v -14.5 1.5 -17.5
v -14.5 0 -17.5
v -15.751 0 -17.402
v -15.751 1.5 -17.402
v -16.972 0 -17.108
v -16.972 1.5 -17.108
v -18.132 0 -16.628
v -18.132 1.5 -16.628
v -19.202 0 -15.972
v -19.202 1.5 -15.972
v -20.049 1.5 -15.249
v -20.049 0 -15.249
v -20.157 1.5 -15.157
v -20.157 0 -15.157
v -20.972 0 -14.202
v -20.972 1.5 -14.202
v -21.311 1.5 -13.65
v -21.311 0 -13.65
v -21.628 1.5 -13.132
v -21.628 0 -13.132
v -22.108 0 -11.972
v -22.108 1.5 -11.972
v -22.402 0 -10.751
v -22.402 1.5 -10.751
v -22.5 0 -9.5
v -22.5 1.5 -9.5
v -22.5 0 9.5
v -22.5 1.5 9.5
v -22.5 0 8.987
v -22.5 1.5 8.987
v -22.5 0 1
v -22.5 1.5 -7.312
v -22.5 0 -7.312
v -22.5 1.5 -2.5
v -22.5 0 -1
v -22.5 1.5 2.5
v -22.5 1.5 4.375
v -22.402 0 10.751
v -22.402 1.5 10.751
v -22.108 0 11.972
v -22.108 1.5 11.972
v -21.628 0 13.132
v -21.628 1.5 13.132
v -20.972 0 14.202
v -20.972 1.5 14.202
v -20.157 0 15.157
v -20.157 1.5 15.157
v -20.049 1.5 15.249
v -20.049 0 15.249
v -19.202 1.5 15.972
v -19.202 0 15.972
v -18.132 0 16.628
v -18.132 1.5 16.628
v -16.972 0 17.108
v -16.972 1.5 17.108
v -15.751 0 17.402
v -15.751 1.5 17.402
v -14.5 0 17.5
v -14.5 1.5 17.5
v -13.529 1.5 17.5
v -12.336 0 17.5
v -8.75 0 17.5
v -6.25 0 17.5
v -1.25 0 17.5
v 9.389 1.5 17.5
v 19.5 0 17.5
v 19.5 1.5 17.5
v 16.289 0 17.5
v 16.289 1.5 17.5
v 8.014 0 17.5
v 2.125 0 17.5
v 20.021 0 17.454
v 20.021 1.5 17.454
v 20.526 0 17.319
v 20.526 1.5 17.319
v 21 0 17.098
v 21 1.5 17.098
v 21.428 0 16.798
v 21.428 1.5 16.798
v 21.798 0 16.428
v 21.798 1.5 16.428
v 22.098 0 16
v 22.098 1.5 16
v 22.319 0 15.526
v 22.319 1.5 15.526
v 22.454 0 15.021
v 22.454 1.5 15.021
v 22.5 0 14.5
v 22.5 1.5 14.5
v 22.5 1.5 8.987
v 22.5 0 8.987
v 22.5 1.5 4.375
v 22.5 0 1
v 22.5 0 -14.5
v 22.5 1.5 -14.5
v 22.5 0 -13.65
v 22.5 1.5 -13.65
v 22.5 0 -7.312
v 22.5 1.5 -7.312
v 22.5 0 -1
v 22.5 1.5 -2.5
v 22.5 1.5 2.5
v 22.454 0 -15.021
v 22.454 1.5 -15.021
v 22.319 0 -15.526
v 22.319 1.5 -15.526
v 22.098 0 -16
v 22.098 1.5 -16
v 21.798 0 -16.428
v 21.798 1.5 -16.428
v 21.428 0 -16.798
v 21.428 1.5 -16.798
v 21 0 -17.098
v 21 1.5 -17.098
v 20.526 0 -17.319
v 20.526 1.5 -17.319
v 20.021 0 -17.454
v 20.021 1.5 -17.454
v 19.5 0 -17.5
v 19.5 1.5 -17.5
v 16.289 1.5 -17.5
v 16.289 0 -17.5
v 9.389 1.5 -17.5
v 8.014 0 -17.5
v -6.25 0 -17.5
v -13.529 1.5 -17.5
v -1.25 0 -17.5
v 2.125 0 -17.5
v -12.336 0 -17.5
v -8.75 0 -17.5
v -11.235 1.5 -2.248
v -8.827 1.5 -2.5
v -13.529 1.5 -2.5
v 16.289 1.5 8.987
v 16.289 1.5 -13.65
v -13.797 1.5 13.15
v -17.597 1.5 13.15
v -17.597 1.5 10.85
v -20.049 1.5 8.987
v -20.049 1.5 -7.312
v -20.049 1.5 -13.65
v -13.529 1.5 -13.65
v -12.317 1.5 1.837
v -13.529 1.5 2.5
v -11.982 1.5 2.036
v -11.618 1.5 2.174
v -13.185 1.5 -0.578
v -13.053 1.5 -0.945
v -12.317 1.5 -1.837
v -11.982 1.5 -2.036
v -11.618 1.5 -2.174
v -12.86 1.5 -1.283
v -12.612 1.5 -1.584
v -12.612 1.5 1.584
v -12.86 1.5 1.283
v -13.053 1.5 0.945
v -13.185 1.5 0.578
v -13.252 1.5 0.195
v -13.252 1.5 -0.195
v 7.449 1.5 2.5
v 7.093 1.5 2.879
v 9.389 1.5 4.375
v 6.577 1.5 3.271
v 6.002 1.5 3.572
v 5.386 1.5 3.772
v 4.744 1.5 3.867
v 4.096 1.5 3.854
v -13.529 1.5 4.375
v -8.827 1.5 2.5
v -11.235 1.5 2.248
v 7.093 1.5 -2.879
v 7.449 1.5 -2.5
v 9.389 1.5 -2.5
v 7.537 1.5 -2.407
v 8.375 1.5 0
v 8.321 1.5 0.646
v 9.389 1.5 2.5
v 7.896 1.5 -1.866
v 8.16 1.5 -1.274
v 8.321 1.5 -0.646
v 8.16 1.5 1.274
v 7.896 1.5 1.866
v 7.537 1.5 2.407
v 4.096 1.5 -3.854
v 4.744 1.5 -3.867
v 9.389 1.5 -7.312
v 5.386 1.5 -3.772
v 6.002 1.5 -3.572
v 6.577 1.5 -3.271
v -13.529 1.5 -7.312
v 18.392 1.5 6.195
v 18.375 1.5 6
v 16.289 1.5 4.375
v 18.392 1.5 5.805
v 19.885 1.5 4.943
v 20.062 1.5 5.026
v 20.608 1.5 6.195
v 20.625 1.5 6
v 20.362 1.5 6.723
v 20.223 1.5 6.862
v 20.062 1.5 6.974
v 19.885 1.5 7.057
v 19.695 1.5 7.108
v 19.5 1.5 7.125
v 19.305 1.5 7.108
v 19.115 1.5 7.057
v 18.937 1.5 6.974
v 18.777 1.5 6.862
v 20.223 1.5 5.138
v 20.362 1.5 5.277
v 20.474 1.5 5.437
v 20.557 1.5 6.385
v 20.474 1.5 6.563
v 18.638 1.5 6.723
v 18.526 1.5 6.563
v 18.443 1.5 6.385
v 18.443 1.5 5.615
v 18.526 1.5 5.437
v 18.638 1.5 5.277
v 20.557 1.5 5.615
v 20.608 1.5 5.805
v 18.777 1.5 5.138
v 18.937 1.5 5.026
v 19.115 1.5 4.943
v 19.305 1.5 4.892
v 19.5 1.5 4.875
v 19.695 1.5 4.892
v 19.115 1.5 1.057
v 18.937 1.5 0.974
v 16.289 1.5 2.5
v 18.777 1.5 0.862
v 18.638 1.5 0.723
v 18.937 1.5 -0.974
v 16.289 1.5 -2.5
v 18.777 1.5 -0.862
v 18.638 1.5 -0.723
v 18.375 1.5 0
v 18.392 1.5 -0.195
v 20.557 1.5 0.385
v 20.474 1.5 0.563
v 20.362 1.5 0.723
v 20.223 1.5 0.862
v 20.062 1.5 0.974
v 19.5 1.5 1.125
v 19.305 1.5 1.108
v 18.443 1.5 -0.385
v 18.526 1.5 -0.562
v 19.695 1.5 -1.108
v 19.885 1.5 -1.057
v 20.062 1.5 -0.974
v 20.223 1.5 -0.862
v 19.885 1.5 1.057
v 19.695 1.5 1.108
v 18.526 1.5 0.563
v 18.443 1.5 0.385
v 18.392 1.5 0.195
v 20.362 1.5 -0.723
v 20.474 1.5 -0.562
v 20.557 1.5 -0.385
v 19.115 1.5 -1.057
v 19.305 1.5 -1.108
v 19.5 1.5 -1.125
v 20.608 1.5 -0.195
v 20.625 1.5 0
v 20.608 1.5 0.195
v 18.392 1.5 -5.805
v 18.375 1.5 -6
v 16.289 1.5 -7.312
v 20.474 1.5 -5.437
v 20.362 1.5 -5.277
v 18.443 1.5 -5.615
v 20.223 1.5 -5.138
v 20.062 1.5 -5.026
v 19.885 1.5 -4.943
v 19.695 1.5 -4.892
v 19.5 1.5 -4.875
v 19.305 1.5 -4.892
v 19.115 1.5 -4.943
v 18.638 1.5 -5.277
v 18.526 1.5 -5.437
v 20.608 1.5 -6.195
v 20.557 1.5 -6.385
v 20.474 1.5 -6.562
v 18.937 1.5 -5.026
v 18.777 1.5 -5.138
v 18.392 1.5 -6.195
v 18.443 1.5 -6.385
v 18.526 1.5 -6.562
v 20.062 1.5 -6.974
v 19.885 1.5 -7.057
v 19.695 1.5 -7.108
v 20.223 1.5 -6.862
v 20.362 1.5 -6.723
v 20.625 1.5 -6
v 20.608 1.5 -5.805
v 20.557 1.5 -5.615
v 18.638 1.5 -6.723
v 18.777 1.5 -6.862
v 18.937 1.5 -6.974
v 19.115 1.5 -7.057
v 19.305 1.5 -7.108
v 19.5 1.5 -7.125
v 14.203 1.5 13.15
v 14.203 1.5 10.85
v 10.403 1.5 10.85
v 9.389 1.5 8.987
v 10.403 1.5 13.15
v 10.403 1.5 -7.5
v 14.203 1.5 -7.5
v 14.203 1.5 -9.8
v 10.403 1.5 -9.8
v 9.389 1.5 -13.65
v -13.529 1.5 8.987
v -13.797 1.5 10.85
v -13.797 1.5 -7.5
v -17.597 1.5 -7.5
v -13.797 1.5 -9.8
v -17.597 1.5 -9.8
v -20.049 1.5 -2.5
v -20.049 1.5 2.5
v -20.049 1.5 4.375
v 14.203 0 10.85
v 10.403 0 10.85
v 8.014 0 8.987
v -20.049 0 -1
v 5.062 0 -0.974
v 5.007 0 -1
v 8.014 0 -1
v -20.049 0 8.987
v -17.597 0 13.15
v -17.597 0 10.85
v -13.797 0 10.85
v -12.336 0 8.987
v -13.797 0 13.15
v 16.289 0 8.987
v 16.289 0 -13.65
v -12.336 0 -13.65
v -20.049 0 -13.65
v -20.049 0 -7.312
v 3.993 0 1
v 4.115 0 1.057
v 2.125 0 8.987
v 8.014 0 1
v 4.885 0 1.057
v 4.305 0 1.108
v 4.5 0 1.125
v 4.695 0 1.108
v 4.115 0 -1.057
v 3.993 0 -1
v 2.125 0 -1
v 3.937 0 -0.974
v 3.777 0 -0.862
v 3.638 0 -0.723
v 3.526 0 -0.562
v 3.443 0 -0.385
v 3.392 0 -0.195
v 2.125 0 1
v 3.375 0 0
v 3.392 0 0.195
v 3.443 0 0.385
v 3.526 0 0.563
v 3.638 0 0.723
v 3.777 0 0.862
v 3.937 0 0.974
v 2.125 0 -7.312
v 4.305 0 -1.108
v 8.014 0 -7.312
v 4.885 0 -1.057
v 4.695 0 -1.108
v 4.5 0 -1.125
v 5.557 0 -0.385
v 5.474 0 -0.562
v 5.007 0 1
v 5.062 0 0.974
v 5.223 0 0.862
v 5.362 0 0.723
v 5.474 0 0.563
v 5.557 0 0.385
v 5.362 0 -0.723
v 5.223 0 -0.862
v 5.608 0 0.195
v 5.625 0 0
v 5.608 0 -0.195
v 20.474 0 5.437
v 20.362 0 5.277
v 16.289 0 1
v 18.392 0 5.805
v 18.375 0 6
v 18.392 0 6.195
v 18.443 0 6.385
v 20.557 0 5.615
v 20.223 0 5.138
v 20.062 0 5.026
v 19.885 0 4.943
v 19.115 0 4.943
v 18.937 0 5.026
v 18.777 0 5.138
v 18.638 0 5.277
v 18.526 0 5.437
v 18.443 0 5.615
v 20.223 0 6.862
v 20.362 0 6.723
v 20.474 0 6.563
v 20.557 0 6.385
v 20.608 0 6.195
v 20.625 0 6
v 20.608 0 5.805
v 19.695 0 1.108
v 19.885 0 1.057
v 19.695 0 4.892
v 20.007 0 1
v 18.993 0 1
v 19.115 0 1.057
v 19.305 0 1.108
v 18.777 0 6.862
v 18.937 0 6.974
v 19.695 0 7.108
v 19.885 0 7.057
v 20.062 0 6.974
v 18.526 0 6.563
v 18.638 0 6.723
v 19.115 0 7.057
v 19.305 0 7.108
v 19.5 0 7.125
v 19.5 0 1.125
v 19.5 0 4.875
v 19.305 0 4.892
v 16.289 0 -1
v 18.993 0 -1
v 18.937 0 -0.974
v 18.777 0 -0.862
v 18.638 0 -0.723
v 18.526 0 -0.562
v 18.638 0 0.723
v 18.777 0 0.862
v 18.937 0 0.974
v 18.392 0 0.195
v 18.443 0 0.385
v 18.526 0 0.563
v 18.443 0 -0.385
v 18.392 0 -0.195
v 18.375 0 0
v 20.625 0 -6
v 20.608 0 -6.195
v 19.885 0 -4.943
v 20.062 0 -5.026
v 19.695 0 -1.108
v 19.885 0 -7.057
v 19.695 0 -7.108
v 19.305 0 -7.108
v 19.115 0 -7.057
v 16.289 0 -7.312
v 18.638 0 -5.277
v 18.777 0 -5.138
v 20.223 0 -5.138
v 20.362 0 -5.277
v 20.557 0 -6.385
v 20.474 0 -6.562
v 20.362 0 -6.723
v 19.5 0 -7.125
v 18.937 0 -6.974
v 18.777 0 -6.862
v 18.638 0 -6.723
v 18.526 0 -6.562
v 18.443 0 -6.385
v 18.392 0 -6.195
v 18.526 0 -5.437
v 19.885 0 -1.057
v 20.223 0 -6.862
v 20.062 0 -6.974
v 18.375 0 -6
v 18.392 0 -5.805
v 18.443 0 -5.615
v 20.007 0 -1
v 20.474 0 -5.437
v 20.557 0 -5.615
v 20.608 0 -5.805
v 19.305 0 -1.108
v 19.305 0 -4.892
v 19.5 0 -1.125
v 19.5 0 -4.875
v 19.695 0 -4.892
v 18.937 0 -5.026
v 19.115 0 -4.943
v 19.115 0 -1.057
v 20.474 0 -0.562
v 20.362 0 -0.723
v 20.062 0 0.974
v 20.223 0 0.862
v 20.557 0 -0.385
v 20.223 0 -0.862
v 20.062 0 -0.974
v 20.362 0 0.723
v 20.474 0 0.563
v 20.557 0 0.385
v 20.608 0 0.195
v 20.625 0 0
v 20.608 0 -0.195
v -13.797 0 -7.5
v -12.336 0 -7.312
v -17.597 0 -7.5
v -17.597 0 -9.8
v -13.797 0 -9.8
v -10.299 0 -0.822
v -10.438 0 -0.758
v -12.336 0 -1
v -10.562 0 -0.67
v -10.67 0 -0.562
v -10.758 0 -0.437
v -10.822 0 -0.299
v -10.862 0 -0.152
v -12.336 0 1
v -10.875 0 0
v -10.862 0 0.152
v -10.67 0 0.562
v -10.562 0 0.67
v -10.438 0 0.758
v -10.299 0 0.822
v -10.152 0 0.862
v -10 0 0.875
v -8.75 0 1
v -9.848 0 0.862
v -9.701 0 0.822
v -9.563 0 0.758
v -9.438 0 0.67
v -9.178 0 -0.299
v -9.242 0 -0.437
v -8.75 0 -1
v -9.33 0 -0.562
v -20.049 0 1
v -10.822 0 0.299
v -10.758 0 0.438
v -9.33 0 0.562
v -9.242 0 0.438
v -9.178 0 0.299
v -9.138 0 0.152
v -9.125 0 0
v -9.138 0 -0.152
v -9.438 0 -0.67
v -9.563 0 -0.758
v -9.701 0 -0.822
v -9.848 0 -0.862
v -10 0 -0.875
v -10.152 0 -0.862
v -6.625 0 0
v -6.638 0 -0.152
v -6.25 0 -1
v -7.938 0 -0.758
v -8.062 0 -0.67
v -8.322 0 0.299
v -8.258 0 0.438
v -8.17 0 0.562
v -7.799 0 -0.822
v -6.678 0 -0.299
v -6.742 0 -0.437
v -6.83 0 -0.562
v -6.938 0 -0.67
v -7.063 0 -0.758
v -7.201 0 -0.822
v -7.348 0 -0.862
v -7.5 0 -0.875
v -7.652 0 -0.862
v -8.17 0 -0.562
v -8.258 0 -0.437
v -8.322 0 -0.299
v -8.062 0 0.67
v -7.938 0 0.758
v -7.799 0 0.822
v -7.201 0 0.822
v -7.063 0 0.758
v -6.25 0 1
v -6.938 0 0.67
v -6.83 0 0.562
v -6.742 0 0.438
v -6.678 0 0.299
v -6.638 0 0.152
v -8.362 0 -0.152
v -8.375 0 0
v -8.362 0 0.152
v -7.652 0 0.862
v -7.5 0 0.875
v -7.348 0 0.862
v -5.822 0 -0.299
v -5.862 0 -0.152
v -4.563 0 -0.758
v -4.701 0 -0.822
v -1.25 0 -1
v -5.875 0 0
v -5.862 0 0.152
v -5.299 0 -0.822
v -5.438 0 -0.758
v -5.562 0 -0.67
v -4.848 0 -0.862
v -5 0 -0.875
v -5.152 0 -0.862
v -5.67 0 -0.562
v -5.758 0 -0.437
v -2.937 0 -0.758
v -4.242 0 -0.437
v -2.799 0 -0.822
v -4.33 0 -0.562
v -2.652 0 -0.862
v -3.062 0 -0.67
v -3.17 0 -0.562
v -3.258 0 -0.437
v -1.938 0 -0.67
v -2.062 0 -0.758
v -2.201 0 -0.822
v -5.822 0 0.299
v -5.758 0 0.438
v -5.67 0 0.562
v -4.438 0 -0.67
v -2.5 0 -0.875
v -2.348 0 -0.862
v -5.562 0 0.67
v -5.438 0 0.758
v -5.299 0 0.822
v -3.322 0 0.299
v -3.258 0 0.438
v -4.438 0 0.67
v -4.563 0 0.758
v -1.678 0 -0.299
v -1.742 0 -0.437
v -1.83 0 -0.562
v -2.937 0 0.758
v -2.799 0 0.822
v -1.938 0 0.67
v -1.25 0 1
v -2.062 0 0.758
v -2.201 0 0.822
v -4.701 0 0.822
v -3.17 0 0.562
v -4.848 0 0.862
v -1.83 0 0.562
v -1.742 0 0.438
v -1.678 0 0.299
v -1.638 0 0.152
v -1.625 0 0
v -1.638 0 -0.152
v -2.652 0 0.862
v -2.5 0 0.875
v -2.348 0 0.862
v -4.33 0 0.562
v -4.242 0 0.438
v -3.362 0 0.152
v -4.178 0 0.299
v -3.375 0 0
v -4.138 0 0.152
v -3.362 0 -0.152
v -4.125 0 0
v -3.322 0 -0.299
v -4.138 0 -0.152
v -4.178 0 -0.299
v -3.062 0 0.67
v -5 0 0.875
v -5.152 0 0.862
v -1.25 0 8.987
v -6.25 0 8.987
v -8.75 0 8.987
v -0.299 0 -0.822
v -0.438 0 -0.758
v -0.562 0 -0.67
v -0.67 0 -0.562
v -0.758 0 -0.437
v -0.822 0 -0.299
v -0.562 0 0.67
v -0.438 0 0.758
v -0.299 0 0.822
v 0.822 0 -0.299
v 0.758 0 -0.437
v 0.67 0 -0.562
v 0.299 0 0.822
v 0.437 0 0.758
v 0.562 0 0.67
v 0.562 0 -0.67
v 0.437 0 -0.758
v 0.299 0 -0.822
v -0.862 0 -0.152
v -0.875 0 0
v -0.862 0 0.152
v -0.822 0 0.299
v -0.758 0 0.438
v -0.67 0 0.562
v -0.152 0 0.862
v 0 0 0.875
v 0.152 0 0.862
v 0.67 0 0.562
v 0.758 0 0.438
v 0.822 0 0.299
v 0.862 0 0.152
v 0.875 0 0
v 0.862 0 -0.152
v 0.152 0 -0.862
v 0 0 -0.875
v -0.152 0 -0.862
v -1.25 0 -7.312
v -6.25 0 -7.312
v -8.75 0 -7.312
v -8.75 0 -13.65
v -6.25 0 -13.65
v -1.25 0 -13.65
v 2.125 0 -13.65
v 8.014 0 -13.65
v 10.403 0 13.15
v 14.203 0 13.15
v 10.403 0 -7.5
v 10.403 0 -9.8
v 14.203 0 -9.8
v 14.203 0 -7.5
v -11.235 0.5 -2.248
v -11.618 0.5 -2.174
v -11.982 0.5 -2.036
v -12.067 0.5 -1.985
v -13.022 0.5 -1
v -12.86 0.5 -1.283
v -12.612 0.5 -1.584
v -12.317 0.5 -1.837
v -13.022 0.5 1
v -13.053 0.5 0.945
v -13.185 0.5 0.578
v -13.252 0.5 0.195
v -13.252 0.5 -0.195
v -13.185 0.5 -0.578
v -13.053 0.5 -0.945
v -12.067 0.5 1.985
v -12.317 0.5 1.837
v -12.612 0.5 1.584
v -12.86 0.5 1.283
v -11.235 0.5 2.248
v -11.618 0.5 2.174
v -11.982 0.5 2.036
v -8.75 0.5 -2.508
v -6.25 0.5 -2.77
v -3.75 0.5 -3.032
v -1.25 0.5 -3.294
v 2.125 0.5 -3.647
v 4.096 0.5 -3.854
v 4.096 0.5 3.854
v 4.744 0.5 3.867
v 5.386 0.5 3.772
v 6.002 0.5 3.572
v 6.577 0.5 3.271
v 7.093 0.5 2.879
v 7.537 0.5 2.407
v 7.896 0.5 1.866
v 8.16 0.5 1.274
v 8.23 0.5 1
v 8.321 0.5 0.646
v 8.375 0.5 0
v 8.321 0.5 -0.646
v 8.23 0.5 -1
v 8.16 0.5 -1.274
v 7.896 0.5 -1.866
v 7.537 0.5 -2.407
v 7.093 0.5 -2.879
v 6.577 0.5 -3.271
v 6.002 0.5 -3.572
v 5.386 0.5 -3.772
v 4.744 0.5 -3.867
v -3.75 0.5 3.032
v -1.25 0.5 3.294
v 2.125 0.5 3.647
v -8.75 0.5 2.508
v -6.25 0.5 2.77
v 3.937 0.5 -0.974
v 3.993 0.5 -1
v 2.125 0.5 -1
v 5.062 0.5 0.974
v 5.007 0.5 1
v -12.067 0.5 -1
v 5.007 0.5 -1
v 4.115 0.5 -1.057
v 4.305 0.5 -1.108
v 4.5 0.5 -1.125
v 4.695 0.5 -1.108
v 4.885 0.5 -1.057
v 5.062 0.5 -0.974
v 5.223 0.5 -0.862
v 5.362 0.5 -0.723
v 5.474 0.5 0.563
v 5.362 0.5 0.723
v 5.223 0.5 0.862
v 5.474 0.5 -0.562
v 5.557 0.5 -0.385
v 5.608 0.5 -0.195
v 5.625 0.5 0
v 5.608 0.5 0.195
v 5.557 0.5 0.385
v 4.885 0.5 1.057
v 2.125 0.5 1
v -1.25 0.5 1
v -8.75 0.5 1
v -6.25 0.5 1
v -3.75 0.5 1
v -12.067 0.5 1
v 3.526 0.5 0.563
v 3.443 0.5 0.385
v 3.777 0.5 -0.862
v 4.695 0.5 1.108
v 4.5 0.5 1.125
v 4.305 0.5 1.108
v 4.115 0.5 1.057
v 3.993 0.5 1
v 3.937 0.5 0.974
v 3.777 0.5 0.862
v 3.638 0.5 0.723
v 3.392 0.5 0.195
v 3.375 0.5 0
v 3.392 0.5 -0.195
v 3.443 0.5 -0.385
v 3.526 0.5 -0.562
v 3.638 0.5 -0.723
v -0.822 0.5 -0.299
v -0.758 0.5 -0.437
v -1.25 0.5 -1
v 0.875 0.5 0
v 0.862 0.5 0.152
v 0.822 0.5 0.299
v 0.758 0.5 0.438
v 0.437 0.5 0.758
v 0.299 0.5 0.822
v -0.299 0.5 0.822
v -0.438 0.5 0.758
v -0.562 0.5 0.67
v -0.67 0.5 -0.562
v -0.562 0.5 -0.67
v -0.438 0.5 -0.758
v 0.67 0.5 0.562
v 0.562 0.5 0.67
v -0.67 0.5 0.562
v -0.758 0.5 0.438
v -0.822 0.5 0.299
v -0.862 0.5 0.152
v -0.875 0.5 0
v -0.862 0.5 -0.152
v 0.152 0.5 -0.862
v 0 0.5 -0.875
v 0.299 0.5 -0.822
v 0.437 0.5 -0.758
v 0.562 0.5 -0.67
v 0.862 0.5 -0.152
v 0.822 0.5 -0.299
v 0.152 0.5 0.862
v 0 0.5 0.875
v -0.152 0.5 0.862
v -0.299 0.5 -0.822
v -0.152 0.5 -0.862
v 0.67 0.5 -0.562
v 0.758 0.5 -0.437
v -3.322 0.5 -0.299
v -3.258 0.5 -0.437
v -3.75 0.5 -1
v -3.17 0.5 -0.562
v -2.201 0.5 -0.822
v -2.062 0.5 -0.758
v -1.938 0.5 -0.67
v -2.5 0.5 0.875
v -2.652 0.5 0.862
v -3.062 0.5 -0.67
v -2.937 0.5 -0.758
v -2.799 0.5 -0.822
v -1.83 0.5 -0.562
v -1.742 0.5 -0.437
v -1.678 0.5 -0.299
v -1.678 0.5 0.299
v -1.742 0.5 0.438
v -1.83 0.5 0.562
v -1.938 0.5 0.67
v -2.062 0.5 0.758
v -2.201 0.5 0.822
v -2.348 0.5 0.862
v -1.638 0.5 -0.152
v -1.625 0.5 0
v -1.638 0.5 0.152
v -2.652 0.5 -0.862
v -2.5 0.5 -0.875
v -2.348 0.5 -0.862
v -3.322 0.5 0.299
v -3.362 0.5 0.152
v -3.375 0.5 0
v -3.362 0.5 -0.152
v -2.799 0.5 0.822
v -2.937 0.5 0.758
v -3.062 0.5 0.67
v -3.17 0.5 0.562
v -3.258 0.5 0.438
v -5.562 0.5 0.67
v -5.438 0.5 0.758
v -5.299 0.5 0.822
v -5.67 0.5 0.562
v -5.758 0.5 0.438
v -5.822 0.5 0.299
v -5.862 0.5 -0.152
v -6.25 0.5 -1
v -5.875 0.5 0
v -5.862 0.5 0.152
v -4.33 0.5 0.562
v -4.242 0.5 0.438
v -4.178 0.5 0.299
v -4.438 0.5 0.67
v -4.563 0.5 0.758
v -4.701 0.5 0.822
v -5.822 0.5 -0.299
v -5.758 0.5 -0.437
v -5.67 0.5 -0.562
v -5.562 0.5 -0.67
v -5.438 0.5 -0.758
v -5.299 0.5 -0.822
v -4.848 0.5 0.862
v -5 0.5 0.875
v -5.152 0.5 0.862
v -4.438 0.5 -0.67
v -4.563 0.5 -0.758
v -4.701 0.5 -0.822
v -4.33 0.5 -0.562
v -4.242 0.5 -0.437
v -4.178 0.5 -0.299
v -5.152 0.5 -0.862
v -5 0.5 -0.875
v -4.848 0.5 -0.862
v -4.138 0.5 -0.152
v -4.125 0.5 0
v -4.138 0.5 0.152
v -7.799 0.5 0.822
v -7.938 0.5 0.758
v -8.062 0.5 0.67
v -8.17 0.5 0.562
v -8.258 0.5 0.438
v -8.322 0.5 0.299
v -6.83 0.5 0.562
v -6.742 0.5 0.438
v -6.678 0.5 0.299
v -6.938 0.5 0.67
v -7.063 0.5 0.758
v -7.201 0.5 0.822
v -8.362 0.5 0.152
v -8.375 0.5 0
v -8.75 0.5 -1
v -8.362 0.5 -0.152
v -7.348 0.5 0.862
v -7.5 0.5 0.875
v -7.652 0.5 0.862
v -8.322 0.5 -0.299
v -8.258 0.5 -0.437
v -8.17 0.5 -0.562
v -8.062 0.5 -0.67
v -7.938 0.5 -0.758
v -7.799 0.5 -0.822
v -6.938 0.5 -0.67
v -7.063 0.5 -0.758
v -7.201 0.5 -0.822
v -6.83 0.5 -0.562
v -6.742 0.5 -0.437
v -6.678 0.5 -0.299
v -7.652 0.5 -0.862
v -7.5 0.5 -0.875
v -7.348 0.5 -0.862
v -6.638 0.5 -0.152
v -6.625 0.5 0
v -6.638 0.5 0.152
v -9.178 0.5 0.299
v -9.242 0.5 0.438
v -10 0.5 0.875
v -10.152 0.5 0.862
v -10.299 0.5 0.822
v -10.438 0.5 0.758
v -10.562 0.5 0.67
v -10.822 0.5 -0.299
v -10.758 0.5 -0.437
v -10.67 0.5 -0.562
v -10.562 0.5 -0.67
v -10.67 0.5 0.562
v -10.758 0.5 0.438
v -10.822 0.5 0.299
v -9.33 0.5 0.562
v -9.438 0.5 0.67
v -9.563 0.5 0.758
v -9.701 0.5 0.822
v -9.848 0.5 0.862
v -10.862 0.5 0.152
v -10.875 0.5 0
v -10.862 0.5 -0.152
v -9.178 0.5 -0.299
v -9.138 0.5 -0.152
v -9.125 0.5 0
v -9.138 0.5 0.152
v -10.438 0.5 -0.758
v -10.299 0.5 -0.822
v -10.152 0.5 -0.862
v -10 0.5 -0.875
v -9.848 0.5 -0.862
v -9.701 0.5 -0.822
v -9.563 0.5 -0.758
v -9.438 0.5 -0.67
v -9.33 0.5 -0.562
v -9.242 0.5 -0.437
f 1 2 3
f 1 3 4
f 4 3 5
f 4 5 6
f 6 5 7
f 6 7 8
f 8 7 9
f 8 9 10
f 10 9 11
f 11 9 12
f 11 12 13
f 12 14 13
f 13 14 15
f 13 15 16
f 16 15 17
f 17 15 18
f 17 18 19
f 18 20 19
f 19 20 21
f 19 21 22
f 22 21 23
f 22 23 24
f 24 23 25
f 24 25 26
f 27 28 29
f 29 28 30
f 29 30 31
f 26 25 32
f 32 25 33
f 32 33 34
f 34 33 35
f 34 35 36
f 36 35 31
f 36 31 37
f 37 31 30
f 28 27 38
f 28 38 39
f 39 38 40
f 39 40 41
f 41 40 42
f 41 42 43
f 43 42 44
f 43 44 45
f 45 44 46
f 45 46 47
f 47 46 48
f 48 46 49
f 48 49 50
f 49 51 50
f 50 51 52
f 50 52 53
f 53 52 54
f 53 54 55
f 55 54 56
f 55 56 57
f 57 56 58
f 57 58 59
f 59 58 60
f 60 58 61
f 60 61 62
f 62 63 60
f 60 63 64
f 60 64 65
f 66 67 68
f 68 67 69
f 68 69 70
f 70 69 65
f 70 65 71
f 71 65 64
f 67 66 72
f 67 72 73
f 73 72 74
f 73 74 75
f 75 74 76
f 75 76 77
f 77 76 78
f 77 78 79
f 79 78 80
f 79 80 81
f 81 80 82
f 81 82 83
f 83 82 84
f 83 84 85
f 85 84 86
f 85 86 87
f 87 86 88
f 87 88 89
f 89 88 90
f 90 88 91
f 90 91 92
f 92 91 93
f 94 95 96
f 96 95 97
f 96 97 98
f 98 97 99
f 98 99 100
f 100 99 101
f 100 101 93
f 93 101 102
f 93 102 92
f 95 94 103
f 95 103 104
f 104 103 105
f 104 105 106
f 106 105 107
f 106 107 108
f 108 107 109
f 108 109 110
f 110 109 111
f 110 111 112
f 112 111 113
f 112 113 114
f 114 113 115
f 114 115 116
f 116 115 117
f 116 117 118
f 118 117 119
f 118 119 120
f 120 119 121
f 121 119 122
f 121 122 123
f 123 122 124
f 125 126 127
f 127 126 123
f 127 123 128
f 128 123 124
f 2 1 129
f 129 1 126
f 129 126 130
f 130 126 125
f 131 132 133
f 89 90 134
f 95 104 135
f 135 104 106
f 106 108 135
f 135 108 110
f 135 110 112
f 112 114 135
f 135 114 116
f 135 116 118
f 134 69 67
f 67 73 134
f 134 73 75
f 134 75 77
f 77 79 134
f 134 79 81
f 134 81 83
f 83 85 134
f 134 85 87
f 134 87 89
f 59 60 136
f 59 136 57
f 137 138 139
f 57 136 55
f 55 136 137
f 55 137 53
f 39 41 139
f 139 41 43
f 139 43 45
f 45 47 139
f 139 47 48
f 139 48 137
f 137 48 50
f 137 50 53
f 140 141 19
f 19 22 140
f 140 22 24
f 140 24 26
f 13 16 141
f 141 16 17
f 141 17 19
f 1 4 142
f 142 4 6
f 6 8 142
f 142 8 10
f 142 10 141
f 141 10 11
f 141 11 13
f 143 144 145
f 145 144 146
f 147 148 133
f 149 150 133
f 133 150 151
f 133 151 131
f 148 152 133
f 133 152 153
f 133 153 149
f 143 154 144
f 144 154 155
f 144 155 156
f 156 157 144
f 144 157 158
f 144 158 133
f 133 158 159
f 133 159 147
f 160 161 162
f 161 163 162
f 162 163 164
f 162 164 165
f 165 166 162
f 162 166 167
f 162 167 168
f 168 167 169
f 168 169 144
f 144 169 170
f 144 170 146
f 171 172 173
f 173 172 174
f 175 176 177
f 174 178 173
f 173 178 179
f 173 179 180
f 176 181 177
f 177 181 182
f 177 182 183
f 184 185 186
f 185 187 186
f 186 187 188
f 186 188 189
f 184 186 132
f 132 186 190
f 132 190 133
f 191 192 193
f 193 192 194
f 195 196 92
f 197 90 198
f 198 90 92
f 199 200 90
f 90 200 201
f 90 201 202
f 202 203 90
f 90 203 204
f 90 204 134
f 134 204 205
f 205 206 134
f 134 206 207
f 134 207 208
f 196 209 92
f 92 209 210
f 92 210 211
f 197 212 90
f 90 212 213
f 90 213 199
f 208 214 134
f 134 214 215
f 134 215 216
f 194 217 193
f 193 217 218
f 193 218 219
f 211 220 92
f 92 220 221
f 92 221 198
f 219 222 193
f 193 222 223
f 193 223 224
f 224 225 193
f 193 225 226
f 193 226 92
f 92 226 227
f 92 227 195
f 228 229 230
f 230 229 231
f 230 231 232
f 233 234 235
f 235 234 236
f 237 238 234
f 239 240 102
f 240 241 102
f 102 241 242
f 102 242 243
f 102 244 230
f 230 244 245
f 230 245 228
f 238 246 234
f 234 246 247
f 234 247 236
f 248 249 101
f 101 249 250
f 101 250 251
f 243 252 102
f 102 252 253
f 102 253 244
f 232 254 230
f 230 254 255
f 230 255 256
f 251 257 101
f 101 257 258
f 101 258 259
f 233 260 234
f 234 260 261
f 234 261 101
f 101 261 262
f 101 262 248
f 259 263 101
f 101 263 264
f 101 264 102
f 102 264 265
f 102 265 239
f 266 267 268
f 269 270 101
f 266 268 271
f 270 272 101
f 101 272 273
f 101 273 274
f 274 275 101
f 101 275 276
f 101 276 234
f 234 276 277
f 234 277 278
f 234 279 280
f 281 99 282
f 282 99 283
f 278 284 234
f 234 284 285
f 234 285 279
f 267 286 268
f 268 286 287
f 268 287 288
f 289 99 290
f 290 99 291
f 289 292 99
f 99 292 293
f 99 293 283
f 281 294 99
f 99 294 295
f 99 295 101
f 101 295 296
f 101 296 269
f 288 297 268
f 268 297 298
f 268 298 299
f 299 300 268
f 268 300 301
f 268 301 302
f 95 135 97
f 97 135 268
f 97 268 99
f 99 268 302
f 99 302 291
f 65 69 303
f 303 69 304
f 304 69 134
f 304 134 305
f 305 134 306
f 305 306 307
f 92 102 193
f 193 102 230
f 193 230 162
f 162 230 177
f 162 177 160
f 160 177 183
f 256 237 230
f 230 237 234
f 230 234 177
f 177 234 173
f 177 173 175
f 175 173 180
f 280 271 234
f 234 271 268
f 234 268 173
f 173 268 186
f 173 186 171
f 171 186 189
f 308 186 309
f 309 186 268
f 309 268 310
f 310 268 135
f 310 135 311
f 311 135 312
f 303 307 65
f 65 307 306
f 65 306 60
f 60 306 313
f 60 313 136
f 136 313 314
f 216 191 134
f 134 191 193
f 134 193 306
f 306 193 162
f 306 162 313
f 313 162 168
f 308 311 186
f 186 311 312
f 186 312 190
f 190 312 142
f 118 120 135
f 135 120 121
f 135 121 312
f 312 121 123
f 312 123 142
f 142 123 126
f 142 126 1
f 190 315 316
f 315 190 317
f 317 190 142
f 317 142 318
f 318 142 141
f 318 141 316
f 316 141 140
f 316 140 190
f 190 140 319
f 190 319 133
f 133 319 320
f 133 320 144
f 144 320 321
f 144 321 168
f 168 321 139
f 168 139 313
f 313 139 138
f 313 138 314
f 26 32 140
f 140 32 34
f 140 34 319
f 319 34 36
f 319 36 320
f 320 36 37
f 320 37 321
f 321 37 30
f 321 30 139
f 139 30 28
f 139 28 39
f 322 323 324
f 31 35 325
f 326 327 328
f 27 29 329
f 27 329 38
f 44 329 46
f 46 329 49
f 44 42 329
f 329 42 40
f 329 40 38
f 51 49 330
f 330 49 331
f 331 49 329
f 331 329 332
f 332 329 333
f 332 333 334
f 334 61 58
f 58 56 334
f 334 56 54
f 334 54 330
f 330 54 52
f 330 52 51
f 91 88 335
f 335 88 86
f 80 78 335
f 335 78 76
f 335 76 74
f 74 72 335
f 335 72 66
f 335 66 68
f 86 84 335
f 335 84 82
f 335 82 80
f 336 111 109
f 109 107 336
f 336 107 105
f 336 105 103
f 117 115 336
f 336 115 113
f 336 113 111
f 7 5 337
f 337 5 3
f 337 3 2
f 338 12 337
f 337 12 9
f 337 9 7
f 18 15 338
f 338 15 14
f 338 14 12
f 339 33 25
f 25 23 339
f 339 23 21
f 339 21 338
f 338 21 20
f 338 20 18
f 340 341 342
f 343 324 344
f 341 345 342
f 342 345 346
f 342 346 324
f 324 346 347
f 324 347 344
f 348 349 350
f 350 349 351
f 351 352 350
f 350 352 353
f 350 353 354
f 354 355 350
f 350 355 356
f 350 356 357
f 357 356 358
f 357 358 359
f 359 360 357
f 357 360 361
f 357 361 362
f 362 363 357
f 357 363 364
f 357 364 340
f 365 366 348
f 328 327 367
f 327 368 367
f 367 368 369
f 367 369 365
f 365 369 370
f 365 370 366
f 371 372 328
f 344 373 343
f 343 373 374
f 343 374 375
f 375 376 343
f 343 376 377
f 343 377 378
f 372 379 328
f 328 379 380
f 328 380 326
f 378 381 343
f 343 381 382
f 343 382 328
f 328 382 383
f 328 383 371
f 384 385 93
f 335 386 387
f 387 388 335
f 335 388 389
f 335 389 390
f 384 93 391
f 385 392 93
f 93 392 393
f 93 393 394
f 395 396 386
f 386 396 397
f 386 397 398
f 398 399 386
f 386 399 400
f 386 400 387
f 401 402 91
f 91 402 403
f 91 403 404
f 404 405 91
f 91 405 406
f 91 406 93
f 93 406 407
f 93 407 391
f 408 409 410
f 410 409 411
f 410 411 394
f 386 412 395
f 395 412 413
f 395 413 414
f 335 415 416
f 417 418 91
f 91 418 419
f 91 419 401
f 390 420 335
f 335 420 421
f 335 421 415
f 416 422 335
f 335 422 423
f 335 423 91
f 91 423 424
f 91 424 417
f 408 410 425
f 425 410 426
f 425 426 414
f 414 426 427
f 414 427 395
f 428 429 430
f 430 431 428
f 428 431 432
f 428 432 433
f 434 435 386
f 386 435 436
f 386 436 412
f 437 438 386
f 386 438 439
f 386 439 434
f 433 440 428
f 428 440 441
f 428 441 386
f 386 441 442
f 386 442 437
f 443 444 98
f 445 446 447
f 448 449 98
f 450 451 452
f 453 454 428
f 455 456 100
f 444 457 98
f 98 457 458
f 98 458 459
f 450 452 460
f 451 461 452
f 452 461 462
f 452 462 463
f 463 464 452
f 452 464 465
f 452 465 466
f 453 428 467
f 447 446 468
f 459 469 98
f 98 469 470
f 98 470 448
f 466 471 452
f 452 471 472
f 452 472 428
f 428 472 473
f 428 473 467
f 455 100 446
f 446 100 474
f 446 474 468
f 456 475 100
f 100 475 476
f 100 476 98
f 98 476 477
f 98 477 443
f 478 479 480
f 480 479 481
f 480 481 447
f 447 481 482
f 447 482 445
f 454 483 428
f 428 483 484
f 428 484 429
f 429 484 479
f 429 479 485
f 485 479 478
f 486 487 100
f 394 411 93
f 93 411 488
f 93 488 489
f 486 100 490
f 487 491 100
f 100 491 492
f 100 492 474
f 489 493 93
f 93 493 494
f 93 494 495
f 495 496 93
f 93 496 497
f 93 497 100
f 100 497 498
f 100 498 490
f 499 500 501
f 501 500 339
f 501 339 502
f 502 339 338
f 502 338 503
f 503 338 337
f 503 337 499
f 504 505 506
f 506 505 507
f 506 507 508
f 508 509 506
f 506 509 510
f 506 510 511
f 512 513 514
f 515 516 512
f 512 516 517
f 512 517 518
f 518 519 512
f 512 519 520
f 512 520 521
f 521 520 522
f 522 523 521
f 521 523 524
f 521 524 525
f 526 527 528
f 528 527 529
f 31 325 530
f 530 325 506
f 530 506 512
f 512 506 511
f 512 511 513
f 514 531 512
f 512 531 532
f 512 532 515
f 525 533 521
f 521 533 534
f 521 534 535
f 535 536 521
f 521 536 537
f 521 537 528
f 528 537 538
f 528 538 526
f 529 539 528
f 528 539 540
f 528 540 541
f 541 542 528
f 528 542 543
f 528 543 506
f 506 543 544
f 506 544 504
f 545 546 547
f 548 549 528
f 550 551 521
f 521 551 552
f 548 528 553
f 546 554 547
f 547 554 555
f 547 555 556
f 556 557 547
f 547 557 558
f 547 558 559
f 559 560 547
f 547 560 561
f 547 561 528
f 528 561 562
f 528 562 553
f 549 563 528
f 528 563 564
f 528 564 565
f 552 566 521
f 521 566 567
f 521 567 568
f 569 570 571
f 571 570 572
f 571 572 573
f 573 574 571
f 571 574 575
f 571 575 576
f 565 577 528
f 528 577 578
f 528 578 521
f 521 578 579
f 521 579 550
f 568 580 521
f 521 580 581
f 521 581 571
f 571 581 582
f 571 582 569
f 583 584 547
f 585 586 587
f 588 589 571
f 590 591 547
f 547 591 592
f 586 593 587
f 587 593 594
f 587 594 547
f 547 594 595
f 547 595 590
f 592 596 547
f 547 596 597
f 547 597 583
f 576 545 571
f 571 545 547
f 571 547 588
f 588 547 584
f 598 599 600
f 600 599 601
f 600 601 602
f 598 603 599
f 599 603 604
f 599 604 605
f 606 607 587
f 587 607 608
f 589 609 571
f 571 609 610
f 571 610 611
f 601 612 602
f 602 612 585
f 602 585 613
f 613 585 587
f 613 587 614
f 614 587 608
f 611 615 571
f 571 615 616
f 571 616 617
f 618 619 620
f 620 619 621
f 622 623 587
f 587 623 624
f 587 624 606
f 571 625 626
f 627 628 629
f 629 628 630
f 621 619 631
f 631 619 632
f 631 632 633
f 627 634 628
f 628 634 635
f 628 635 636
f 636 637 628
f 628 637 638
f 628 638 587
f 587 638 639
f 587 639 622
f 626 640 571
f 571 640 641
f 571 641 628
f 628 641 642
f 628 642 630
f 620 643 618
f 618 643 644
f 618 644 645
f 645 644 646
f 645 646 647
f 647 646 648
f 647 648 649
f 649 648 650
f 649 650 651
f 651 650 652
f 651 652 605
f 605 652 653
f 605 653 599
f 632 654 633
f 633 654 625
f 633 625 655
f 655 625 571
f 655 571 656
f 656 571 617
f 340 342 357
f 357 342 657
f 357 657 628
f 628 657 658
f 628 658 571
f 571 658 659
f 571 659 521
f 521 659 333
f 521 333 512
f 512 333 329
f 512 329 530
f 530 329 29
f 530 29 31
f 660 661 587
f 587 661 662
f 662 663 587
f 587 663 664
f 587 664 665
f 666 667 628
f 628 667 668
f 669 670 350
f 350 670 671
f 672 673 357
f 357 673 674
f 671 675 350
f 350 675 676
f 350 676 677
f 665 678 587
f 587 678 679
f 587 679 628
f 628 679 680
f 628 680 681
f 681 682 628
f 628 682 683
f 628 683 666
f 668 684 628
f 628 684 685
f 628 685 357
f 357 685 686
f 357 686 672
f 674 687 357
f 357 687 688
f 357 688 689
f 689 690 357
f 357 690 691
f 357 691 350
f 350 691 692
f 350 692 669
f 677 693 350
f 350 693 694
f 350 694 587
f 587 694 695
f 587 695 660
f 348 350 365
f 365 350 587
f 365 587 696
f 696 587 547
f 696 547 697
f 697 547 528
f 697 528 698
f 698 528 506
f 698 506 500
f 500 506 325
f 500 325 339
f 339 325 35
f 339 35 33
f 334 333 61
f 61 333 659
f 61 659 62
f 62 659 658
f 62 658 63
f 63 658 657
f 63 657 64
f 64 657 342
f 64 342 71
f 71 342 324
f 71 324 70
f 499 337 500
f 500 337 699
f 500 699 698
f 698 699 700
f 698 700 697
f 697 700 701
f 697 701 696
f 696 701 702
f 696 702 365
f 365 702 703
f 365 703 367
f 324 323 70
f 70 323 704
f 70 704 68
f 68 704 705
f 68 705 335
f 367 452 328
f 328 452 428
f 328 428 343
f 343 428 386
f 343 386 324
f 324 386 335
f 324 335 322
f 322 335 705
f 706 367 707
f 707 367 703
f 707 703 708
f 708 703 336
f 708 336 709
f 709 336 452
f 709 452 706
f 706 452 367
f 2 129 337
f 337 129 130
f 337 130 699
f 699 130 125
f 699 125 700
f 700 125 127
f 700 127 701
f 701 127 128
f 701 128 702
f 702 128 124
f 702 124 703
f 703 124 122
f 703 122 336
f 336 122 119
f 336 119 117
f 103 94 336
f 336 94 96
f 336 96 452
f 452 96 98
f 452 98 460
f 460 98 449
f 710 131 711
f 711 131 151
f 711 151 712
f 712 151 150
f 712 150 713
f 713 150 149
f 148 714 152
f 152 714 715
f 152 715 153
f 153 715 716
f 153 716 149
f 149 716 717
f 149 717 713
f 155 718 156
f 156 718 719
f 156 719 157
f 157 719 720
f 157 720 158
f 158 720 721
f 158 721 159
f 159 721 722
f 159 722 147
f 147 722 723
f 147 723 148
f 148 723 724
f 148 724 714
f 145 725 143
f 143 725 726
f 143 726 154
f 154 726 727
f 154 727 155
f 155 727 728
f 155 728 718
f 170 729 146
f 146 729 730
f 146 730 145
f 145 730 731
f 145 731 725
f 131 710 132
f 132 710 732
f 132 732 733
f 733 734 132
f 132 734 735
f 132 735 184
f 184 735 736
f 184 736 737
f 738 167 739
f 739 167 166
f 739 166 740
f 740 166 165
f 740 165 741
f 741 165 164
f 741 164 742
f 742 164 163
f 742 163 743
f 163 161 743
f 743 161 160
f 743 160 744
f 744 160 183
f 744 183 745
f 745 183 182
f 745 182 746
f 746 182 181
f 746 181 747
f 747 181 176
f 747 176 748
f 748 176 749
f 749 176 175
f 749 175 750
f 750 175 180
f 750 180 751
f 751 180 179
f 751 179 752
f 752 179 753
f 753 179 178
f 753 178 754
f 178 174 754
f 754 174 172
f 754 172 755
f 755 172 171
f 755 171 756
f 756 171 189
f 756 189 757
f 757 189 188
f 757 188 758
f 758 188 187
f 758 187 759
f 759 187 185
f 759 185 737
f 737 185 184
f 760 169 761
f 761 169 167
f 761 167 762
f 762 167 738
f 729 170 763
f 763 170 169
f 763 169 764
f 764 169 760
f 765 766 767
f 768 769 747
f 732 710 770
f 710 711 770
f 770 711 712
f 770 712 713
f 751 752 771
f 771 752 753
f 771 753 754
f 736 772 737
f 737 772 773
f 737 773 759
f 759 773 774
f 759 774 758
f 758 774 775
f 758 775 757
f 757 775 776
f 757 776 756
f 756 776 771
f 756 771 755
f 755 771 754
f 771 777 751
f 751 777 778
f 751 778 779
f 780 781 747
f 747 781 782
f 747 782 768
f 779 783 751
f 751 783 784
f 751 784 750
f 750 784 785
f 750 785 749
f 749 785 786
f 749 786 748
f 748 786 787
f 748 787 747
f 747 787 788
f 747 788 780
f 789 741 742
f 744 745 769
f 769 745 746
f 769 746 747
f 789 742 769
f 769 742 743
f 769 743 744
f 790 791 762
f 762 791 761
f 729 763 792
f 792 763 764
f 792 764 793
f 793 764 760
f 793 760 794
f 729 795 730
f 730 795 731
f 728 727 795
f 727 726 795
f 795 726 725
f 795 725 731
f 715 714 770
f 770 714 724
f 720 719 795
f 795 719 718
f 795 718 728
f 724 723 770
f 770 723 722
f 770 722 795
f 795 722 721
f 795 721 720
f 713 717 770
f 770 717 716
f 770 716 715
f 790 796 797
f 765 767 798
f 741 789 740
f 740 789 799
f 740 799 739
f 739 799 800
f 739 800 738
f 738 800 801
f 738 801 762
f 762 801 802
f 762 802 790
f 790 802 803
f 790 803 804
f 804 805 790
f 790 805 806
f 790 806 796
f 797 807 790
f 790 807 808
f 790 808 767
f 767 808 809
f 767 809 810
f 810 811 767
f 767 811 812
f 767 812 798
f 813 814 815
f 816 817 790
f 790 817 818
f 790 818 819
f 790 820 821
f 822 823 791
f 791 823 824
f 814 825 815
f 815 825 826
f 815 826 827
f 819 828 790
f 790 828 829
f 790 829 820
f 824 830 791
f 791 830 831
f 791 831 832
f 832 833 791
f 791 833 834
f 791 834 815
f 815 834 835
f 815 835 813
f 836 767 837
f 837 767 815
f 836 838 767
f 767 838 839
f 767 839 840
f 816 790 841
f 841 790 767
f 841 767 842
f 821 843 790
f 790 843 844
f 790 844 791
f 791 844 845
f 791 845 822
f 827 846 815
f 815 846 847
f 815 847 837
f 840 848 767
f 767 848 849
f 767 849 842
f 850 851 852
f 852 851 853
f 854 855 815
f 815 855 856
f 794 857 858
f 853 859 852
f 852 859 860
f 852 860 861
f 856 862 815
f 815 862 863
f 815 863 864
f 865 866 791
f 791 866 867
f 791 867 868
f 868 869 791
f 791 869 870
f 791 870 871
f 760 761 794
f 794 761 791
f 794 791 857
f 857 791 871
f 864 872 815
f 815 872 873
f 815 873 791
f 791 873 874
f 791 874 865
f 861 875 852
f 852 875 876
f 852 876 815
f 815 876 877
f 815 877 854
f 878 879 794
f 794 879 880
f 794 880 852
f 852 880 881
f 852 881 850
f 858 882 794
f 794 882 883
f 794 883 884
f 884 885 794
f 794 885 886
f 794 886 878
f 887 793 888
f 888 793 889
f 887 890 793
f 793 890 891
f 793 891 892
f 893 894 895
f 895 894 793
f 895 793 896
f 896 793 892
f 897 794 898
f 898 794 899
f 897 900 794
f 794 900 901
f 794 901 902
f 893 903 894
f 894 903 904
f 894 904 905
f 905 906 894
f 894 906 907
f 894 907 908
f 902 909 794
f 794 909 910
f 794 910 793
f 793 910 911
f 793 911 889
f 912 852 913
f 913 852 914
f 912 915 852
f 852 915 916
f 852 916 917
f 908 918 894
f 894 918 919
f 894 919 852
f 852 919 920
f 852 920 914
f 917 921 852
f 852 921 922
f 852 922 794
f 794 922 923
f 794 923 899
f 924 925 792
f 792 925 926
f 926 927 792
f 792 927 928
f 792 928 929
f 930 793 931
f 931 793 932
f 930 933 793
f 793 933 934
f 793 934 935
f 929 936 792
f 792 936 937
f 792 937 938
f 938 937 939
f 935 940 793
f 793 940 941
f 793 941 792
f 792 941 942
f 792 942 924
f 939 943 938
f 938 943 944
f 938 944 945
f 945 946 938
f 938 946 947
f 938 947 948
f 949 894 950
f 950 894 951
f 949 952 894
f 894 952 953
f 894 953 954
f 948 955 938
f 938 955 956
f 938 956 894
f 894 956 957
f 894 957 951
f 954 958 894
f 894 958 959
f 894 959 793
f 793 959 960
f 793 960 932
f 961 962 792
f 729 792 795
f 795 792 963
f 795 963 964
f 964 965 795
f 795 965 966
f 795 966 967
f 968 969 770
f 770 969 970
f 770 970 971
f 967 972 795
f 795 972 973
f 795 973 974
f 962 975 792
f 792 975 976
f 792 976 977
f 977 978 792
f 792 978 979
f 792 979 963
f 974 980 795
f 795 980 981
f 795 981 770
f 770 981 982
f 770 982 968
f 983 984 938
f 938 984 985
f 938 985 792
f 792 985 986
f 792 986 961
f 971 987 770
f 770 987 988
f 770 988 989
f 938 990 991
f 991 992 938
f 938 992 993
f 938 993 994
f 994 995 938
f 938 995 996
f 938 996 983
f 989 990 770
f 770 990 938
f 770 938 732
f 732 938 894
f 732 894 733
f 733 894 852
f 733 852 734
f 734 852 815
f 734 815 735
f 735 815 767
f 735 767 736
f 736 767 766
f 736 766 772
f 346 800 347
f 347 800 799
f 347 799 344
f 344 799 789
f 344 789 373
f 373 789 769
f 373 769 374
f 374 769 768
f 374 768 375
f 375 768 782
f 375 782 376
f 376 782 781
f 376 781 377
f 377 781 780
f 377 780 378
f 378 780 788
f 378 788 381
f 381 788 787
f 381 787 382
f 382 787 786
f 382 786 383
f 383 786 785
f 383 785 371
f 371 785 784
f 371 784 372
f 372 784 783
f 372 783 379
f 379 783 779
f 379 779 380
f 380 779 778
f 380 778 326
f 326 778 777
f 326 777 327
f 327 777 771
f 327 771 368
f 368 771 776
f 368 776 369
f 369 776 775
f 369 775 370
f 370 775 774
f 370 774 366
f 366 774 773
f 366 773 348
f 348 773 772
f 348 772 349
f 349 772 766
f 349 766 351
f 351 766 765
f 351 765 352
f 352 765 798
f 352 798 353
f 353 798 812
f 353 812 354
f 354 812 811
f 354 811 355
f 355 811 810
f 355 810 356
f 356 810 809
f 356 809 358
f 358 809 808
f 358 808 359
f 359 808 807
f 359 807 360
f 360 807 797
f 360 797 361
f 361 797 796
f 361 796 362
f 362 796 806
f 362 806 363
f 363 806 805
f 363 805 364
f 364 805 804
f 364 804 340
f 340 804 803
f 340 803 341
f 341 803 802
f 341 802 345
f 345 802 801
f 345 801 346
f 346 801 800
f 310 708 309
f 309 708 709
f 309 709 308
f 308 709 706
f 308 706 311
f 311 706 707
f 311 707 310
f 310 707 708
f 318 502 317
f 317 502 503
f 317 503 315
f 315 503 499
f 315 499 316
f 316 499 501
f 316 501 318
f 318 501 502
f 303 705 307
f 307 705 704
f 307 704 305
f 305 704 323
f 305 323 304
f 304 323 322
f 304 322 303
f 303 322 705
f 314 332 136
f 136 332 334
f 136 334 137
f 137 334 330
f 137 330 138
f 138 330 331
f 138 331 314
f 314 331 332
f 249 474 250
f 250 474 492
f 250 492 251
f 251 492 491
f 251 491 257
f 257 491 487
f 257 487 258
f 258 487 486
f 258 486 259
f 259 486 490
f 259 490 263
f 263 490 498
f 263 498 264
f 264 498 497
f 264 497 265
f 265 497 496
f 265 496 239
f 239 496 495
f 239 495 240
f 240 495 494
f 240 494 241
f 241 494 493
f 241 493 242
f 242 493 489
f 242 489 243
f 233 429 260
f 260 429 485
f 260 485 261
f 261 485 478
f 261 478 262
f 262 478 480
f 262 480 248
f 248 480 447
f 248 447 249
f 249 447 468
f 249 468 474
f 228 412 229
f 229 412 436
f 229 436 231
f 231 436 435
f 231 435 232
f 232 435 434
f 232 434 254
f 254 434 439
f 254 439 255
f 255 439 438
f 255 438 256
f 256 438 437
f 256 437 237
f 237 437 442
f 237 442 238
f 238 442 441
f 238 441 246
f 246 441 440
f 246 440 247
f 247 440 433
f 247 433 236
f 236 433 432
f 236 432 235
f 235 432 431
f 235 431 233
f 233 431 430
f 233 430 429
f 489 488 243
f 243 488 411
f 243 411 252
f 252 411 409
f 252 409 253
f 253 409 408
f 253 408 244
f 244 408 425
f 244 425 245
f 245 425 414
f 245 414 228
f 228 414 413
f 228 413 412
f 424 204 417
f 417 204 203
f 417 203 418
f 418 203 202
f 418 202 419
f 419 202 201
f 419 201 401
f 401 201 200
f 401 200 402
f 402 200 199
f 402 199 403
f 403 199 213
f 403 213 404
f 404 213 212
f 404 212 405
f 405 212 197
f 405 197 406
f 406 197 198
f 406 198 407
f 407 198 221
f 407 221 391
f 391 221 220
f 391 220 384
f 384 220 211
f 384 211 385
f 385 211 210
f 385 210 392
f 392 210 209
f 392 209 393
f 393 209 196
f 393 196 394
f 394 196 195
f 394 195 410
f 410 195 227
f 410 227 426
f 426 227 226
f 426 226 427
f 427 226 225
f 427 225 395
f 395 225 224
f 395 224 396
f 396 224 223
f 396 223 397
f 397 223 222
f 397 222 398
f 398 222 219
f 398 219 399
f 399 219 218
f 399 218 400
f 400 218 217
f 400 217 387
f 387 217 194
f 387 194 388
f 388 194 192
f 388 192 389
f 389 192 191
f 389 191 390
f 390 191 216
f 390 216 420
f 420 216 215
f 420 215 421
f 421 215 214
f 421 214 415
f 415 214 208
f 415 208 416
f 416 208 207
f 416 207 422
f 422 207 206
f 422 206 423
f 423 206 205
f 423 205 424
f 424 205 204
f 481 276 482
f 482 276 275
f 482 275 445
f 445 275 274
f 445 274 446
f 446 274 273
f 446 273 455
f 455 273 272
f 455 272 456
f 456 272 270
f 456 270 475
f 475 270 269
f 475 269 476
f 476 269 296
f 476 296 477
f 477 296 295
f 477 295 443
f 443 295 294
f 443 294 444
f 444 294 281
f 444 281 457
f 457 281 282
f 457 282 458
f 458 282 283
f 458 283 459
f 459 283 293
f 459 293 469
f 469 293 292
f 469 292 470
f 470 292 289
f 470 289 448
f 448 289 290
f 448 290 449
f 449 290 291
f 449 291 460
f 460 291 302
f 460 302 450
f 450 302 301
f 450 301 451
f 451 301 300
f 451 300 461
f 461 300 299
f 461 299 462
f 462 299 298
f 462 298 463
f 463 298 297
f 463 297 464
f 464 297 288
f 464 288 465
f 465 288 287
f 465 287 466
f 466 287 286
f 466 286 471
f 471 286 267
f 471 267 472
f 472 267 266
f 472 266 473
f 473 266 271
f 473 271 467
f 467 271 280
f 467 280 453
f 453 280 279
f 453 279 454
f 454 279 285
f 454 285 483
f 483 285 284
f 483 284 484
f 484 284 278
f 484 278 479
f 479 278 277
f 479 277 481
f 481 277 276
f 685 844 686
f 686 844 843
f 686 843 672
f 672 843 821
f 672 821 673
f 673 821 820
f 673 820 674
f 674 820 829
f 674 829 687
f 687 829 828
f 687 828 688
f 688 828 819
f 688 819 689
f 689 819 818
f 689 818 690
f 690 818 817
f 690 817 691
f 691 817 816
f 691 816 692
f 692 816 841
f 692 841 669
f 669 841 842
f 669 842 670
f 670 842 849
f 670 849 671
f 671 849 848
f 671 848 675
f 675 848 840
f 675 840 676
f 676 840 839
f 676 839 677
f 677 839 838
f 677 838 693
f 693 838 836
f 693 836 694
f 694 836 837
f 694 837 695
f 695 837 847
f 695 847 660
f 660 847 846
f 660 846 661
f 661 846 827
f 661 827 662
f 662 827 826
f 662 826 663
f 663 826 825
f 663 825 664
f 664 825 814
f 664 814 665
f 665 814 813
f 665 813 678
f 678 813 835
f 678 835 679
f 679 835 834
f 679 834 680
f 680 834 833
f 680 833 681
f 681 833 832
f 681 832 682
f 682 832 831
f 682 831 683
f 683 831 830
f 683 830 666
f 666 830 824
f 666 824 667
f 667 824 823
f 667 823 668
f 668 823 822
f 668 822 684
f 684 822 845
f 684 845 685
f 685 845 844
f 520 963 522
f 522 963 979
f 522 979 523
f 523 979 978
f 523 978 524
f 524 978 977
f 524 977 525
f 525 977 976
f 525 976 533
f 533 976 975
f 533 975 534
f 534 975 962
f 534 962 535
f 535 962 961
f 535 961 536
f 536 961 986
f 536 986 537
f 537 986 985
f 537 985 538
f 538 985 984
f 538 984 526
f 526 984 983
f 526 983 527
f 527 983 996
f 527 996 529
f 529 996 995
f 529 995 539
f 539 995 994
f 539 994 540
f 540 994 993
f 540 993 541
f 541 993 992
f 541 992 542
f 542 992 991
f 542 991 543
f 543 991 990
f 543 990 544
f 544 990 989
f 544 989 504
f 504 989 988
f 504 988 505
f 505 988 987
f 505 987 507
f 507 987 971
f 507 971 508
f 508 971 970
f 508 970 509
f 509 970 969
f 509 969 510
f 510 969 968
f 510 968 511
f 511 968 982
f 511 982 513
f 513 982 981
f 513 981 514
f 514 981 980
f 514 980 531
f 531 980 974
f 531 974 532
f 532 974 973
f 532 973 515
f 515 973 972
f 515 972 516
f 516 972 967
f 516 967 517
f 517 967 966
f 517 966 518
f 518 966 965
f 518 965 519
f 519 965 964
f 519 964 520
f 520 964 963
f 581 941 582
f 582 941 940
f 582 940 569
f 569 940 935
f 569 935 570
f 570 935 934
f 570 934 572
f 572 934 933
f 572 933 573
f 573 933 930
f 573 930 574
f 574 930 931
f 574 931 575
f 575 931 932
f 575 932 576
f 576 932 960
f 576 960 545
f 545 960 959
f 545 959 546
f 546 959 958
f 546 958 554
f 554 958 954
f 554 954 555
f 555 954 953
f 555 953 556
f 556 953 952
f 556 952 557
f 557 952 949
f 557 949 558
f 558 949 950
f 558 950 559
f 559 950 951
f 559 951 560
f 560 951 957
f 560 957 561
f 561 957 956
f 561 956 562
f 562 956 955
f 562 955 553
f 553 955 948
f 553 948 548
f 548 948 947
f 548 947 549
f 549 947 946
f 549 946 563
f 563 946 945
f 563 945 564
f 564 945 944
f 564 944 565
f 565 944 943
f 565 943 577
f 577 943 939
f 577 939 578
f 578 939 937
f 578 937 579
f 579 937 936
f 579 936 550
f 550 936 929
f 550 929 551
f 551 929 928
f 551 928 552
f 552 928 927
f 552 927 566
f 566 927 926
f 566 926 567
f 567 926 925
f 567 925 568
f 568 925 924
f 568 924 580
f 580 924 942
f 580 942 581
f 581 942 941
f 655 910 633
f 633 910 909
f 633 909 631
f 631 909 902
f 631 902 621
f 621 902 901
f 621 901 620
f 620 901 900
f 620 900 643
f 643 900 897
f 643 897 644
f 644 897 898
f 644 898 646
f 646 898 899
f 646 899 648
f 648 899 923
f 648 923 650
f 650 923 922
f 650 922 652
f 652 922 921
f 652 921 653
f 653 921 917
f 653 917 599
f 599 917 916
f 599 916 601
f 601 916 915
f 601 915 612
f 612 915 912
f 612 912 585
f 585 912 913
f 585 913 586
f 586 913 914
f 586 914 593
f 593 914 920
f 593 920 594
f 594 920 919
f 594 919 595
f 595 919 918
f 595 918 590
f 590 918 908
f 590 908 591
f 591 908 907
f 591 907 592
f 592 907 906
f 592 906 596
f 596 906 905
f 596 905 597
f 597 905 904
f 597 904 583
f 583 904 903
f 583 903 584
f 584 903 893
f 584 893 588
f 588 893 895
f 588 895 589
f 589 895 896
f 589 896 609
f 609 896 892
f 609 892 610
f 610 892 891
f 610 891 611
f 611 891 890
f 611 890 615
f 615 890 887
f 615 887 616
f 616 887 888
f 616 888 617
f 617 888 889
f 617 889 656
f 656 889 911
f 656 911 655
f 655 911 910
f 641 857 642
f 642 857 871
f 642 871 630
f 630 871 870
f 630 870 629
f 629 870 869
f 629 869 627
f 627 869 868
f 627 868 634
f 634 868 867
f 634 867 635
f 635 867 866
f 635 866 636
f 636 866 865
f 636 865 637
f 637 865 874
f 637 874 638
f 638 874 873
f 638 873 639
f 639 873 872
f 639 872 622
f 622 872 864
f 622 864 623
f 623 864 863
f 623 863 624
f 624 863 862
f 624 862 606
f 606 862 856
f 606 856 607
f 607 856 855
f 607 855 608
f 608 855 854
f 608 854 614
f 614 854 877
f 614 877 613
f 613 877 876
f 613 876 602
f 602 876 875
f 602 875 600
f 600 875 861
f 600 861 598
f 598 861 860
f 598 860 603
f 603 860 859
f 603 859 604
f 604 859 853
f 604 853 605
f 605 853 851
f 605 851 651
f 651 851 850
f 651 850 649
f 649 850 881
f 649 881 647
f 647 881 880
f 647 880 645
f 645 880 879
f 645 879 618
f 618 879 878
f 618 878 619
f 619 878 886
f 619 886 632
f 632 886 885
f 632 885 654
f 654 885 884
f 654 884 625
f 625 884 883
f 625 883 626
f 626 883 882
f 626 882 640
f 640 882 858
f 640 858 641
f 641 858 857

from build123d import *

# Parameters (mm, degrees)
SALIENTE_EXTRUIR1_DEPTH = 1.5
CORTAR_EXTRUIR1_DEPTH   = 1
CROQUIS3_R              = 1.125
CROQUIS3_W              = 3.8
CROQUIS3_H              = 2.3
CORTAR_EXTRUIR2_DEPTH   = 1
CROQUIS4_R              = 0.875
CORTAR_EXTRUIR3_DEPTH   = 10


with BuildPart() as part:
    # Croquis1 → Saliente-Extruir1 (new body)
    with BuildSketch(Plane(origin=(0, 0, 0), x_dir=(1, 0, 0), z_dir=(0, 1, 0))):
        with BuildLine():
            Line((-14.5, -17.5), (19.5, -17.5))
            ThreePointArc((19.5, -17.5), (21.621320344, -16.621320344), (22.5, -14.5))
            Line((22.5, -14.5), (22.5, 14.5))
            ThreePointArc((22.5, 14.5), (21.621320344, 16.621320344), (19.5, 17.5))
            Line((19.5, 17.5), (-14.5, 17.5))
            ThreePointArc((-14.5, 17.5), (-20.156854249, 15.156854249), (-22.5, 9.5))
            Line((-22.5, 9.5), (-22.5, -9.5))
            ThreePointArc((-22.5, -9.5), (-20.156854249, -15.156854249), (-14.5, -17.5))
        make_face()
    extrude(amount=SALIENTE_EXTRUIR1_DEPTH)

    # Croquis2 → Cortar-Extruir1 (cut)
    with BuildSketch(Plane(origin=(0, 1.5, 0), x_dir=(1, 0, 0), z_dir=(0, 1, 0))):
        with BuildLine():
            Line((-11.235477419, 2.247698909), (4.09625, 3.853908527))
            ThreePointArc((4.09625, 3.853908527), (8.375, 0), (4.09625, -3.853908527))
            Line((4.09625, -3.853908527), (-11.235477419, -2.247698909))
            ThreePointArc((-11.235477419, -2.247698909), (-13.26, 0), (-11.235477419, 2.247698909))
        make_face()
    extrude(amount=-CORTAR_EXTRUIR1_DEPTH, mode=Mode.SUBTRACT)

    # Croquis3 → Cortar-Extruir2 (cut, symmetric)
    with BuildSketch(Plane(origin=(0, 0.5, 0), x_dir=(1, 0, 0), z_dir=(0, 1, 0))):
        with Locations(Location((4.5, 0, 0), (0, 0, 270))):
            Circle(CROQUIS3_R)
        with Locations(Location((19.5, 6, 0), (0, 0, 270))):
            Circle(CROQUIS3_R)
        with Locations(Location((19.5, -6, 0), (0, 0, 270))):
            Circle(CROQUIS3_R)
        with Locations(Location((19.5, 0, 0), (0, 0, 270))):
            Circle(CROQUIS3_R)
        with Locations((-15.697233885, 8.65)):
            Rectangle(CROQUIS3_W, CROQUIS3_H)
        with Locations((-15.697233885, -12)):
            Rectangle(CROQUIS3_W, CROQUIS3_H)
        with Locations((12.302766115, -12)):
            Rectangle(CROQUIS3_W, CROQUIS3_H)
        with Locations((12.302766115, 8.65)):
            Rectangle(CROQUIS3_W, CROQUIS3_H)
    extrude(amount=CORTAR_EXTRUIR2_DEPTH, both=True, mode=Mode.SUBTRACT)

    # Croquis4 → Cortar-Extruir3 (cut)
    with BuildSketch(Plane(origin=(0, 1.5, 0), x_dir=(1, 0, 0), z_dir=(0, 1, 0))):
        with Locations(Location((0, 0, 0), (0, 0, 270))):
            Circle(CROQUIS4_R)
        with Locations(Location((-5, 0, 0), (0, 0, 270))):
            Circle(CROQUIS4_R)
        with Locations(Location((-2.5, 0, 0), (0, 0, 270))):
            Circle(CROQUIS4_R)
        with Locations(Location((-7.5, 0, 0), (0, 0, 270))):
            Circle(CROQUIS4_R)
        with Locations(Location((-10, 0, 0), (0, 0, 270))):
            Circle(CROQUIS4_R)
    extrude(amount=-CORTAR_EXTRUIR3_DEPTH, mode=Mode.SUBTRACT)


solid = part.part
